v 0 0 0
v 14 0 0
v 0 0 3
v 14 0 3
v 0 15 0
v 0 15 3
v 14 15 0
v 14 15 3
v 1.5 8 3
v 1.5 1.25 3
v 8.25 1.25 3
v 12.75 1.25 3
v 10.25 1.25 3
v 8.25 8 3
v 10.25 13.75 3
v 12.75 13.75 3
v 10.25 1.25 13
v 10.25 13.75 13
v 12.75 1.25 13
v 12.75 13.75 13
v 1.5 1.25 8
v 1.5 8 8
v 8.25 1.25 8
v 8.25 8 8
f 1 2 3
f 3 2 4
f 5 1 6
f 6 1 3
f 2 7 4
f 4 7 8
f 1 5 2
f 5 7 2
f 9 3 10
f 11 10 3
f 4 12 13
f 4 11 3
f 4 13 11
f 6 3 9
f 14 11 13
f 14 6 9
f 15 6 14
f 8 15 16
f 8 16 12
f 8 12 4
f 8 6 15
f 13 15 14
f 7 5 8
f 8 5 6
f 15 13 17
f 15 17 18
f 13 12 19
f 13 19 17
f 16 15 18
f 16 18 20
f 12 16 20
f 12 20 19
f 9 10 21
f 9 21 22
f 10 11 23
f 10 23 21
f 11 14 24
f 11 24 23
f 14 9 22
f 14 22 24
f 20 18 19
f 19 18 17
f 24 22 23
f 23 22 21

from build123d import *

# Parameters (mm, degrees)
SKETCH_W     = 14
SKETCH_H     = 15
PAD_DEPTH    = 3
SKETCH001_W  = 2.5
SKETCH001_H  = 12.5
PAD001_DEPTH = 10
SKETCH002_W  = 6.75
SKETCH002_H  = 6.75
PAD002_DEPTH = 5


with BuildPart() as part:
    # Sketch → Pad (new body)
    with BuildSketch(Plane.XY):
        with Locations((7, 7.5)):
            Rectangle(SKETCH_W, SKETCH_H)
    extrude(amount=PAD_DEPTH)

    # Sketch001 (on Face6 of Pad) → Pad001 (join)
    with BuildSketch(Plane.XY.offset(3)):
        with Locations((11.5, 7.5)):
            Rectangle(SKETCH001_W, SKETCH001_H)
    extrude(amount=PAD001_DEPTH)

    # Sketch002 (on Face5 of Pad001) → Pad002 (join)
    with BuildSketch(Plane.XY.offset(3)):
        with Locations((4.875, 4.625)):
            Rectangle(SKETCH002_W, SKETCH002_H)
    extrude(amount=PAD002_DEPTH)


solid = part.part
